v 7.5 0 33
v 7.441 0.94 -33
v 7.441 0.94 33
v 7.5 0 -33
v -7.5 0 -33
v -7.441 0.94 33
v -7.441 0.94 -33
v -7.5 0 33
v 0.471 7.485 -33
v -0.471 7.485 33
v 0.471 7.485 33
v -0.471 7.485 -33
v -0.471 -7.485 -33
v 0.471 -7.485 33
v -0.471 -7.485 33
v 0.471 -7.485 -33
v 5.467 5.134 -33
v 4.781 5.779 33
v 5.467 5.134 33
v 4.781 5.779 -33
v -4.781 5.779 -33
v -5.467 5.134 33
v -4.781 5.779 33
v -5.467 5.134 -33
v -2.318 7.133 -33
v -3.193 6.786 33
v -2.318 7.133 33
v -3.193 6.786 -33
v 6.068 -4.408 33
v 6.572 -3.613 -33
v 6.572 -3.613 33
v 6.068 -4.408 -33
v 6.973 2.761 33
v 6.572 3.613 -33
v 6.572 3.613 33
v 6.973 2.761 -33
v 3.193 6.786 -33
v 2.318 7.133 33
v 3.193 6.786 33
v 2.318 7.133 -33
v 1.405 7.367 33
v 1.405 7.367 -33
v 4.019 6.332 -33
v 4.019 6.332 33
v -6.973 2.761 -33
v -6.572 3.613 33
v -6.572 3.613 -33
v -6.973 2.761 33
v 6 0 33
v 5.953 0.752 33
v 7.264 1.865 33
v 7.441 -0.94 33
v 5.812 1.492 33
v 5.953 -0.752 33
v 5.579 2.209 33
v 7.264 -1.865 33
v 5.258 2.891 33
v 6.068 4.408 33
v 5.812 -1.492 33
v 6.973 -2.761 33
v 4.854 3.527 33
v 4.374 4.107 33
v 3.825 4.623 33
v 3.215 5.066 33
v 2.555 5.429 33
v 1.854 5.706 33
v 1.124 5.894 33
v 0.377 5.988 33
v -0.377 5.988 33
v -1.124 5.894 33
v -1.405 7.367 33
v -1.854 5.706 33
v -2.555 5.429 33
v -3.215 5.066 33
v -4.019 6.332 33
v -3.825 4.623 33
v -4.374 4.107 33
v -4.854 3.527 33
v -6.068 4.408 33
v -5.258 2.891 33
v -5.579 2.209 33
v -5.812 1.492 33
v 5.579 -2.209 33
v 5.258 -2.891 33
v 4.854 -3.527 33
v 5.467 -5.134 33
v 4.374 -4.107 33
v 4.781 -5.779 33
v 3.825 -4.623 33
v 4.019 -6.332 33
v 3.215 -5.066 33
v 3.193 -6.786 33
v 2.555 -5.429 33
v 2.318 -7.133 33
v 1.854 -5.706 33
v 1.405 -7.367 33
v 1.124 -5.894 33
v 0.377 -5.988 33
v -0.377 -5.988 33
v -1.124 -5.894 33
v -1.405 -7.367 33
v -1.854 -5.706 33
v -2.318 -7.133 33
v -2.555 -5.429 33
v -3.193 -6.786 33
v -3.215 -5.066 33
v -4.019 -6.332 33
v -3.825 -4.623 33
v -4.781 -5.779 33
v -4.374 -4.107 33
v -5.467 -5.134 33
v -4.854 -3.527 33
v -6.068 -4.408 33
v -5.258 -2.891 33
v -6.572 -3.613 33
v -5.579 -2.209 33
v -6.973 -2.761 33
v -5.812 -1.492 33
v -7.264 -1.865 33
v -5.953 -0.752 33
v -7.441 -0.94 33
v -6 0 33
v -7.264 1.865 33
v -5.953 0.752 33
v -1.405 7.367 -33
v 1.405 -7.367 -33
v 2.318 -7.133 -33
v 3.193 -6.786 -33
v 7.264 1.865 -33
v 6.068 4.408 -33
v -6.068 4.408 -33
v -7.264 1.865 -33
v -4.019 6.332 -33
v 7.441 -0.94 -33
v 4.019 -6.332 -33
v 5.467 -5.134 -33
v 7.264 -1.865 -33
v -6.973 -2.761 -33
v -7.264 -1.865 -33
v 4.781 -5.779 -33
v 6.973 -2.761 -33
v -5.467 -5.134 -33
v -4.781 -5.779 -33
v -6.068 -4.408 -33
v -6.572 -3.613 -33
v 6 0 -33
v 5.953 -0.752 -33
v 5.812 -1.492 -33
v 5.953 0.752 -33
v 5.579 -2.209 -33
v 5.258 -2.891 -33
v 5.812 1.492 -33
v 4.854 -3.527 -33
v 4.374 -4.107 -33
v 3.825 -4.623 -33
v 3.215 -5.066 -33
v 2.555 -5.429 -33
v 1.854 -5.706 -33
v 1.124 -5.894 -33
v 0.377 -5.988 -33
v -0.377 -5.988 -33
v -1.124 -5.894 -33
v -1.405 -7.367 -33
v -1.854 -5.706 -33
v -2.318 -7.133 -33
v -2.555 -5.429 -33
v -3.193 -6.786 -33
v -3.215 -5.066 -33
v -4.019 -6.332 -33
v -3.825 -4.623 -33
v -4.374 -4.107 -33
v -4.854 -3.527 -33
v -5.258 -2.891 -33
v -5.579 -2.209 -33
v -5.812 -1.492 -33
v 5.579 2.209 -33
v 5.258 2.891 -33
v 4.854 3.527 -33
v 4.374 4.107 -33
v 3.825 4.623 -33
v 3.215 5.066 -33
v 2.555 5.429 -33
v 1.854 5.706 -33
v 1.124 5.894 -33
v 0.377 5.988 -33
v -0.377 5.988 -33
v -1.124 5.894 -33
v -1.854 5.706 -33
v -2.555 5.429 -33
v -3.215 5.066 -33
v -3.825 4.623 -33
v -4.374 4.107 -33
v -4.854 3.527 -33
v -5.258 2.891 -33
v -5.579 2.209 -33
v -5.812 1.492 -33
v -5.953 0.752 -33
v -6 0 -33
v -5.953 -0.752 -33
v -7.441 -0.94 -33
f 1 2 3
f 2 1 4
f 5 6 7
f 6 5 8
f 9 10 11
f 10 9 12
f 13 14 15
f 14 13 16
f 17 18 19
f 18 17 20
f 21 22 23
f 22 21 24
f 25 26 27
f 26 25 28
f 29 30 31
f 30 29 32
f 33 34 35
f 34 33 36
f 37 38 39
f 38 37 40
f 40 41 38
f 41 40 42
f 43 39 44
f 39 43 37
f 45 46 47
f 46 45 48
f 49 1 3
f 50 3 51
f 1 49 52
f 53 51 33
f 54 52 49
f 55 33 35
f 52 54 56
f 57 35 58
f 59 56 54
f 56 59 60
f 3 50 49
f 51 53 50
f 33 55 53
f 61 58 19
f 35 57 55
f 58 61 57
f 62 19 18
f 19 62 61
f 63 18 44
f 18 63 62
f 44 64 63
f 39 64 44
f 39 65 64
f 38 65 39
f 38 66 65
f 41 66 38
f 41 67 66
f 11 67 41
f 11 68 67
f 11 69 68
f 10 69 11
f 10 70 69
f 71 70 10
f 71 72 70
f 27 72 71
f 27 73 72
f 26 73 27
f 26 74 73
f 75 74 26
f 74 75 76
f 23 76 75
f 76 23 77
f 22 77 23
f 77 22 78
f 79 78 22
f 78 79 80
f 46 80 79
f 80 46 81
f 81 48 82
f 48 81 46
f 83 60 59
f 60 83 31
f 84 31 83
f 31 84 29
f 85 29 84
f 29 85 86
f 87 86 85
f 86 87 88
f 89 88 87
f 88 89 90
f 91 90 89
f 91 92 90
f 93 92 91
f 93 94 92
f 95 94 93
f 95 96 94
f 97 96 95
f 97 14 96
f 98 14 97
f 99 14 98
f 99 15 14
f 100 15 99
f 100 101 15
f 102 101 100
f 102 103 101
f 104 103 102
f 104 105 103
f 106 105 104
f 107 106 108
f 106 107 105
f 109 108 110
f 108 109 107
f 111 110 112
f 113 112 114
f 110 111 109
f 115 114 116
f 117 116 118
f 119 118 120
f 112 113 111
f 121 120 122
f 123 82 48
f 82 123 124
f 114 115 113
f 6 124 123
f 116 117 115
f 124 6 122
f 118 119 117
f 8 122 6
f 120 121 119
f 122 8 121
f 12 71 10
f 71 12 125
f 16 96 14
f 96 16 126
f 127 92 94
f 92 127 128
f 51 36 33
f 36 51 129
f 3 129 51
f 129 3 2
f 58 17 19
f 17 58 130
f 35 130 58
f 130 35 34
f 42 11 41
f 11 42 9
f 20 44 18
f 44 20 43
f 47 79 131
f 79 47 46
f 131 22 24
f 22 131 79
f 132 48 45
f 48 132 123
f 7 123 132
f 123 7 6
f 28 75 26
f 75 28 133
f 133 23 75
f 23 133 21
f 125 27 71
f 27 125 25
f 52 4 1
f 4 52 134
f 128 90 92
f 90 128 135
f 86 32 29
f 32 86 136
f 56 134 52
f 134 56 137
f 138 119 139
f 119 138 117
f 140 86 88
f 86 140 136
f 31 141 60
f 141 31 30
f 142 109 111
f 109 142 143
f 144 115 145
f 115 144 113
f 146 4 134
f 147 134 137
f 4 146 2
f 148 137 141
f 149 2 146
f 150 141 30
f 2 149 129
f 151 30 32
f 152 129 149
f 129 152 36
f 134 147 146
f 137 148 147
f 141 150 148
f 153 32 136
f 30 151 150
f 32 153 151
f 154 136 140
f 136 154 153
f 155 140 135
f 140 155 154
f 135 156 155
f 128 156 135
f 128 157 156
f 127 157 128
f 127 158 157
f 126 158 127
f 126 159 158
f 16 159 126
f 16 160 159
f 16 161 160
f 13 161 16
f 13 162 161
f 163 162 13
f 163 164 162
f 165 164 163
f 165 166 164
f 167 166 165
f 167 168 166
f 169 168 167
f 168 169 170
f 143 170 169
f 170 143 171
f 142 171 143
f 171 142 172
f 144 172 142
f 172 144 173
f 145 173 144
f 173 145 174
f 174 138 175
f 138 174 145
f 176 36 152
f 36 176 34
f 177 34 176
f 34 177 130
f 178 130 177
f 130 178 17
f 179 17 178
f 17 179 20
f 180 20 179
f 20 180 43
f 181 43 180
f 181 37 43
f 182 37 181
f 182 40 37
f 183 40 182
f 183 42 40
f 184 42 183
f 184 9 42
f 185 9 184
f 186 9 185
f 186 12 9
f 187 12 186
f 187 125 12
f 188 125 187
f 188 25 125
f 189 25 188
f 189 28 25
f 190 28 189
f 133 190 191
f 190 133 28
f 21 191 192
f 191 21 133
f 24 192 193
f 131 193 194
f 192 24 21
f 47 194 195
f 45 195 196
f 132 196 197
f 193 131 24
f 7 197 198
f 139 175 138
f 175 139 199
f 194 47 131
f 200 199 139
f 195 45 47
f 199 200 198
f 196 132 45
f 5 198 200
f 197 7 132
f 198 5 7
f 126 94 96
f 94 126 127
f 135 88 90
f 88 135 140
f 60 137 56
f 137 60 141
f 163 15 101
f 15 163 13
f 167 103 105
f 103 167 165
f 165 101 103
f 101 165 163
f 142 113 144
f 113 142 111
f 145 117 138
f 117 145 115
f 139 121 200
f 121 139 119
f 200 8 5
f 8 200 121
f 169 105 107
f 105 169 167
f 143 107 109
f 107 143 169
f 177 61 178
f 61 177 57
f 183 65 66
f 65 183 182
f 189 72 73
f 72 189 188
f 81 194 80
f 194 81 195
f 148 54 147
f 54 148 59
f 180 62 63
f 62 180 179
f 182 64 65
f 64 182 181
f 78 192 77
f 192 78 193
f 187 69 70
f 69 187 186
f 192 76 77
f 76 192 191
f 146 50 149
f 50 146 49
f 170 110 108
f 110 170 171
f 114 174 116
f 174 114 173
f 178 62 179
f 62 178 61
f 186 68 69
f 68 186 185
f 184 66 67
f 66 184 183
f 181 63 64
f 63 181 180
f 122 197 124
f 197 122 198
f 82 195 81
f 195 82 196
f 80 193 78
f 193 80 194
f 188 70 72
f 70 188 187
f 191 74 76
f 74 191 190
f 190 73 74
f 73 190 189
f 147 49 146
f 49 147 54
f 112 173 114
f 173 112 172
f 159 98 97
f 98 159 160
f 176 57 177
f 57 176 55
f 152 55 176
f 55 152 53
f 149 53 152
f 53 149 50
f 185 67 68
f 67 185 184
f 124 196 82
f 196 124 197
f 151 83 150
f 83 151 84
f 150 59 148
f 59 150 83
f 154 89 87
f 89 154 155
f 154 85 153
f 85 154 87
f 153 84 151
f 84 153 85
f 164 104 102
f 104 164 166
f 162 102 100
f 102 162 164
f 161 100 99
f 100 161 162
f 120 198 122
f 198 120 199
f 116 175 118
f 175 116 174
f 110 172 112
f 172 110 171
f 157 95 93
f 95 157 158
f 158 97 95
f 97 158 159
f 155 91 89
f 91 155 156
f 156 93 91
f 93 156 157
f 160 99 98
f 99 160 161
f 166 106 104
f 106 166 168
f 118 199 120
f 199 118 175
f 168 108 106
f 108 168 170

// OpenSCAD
$fn = 50;


difference() {
	union() {
		translate(v = [0, 0, -33.0000000000]) {
			cylinder(h = 66, r = 7.5000000000);
		}
	}
	union() {
		translate(v = [0, 0, -100.0000000000]) {
			cylinder(h = 200, r = 6);
		}
	}
}
